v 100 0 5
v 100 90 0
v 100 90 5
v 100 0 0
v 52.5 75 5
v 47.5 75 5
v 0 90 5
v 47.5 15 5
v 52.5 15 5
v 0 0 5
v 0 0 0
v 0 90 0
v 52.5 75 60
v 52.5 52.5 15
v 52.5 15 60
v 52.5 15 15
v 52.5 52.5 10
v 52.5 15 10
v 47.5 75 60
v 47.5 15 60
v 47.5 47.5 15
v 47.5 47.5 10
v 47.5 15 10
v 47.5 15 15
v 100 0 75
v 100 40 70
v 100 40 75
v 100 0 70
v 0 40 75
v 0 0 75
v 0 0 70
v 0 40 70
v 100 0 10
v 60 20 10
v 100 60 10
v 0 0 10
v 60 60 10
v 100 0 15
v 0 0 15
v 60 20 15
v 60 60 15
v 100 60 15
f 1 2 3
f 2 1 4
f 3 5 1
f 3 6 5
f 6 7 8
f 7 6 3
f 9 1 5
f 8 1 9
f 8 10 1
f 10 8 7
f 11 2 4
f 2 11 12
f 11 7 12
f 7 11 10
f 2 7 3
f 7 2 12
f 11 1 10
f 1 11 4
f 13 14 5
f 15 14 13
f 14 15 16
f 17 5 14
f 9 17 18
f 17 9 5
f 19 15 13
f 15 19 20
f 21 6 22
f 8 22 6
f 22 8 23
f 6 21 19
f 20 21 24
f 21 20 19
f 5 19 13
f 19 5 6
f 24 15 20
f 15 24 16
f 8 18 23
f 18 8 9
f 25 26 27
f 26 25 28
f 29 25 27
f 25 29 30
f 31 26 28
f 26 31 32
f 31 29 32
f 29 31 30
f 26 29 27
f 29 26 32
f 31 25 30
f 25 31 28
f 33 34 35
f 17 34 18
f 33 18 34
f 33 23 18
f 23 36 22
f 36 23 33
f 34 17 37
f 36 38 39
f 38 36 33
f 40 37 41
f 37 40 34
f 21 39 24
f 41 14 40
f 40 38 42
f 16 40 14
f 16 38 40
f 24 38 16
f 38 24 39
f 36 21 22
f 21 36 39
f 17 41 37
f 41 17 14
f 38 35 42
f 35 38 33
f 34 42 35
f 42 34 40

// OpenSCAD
// Dimensions
base_plate_length = 100;
base_plate_width = 90; // Widened to match the original model
base_plate_thickness = 5;

vertical_plate_length = 60;
vertical_plate_height = 55; // Increased height to match the original model
vertical_plate_thickness = 5;

horizontal_plate_length = 100;
horizontal_plate_width = 40;
horizontal_plate_thickness = 5;

corner_connector_length = 60; // Resized to be larger
corner_connector_height = 60; // Resized to be larger
corner_connector_thickness = 5;

// Base Plate
module base_plate() {
    cube([base_plate_length, base_plate_width, base_plate_thickness], center = false);
}

// Vertical Plate
module vertical_plate() {
    translate([(base_plate_length - vertical_plate_thickness) / 2, (base_plate_width - vertical_plate_length) / 2, base_plate_thickness]) // Repositioned to center
        cube([vertical_plate_thickness, vertical_plate_length, vertical_plate_height], center = false);
}

// Horizontal Plate
module horizontal_plate() {
    translate([0, 0, base_plate_thickness + vertical_plate_height + 10]) // Elevated to match the original model
        cube([horizontal_plate_length, horizontal_plate_width, horizontal_plate_thickness], center = false);
}

// Corner Connector
module corner_connector() {
    translate([0, 0, base_plate_thickness])
        linear_extrude(height = corner_connector_thickness)
            polygon(points = [[0, 0], [corner_connector_length, 0], [corner_connector_length, corner_connector_height]]); // Adjusted angle and size
}

// Assembly
module assembly() {
    // Base Plate
    base_plate();

    // Vertical Plate
    vertical_plate();

    // Horizontal Plate
    horizontal_plate();

    // Corner Connectors
    translate([0, 0, base_plate_thickness])
        corner_connector();
    translate([horizontal_plate_length - corner_connector_length, 0, base_plate_thickness])
        corner_connector();
}

// Render the model
assembly();
